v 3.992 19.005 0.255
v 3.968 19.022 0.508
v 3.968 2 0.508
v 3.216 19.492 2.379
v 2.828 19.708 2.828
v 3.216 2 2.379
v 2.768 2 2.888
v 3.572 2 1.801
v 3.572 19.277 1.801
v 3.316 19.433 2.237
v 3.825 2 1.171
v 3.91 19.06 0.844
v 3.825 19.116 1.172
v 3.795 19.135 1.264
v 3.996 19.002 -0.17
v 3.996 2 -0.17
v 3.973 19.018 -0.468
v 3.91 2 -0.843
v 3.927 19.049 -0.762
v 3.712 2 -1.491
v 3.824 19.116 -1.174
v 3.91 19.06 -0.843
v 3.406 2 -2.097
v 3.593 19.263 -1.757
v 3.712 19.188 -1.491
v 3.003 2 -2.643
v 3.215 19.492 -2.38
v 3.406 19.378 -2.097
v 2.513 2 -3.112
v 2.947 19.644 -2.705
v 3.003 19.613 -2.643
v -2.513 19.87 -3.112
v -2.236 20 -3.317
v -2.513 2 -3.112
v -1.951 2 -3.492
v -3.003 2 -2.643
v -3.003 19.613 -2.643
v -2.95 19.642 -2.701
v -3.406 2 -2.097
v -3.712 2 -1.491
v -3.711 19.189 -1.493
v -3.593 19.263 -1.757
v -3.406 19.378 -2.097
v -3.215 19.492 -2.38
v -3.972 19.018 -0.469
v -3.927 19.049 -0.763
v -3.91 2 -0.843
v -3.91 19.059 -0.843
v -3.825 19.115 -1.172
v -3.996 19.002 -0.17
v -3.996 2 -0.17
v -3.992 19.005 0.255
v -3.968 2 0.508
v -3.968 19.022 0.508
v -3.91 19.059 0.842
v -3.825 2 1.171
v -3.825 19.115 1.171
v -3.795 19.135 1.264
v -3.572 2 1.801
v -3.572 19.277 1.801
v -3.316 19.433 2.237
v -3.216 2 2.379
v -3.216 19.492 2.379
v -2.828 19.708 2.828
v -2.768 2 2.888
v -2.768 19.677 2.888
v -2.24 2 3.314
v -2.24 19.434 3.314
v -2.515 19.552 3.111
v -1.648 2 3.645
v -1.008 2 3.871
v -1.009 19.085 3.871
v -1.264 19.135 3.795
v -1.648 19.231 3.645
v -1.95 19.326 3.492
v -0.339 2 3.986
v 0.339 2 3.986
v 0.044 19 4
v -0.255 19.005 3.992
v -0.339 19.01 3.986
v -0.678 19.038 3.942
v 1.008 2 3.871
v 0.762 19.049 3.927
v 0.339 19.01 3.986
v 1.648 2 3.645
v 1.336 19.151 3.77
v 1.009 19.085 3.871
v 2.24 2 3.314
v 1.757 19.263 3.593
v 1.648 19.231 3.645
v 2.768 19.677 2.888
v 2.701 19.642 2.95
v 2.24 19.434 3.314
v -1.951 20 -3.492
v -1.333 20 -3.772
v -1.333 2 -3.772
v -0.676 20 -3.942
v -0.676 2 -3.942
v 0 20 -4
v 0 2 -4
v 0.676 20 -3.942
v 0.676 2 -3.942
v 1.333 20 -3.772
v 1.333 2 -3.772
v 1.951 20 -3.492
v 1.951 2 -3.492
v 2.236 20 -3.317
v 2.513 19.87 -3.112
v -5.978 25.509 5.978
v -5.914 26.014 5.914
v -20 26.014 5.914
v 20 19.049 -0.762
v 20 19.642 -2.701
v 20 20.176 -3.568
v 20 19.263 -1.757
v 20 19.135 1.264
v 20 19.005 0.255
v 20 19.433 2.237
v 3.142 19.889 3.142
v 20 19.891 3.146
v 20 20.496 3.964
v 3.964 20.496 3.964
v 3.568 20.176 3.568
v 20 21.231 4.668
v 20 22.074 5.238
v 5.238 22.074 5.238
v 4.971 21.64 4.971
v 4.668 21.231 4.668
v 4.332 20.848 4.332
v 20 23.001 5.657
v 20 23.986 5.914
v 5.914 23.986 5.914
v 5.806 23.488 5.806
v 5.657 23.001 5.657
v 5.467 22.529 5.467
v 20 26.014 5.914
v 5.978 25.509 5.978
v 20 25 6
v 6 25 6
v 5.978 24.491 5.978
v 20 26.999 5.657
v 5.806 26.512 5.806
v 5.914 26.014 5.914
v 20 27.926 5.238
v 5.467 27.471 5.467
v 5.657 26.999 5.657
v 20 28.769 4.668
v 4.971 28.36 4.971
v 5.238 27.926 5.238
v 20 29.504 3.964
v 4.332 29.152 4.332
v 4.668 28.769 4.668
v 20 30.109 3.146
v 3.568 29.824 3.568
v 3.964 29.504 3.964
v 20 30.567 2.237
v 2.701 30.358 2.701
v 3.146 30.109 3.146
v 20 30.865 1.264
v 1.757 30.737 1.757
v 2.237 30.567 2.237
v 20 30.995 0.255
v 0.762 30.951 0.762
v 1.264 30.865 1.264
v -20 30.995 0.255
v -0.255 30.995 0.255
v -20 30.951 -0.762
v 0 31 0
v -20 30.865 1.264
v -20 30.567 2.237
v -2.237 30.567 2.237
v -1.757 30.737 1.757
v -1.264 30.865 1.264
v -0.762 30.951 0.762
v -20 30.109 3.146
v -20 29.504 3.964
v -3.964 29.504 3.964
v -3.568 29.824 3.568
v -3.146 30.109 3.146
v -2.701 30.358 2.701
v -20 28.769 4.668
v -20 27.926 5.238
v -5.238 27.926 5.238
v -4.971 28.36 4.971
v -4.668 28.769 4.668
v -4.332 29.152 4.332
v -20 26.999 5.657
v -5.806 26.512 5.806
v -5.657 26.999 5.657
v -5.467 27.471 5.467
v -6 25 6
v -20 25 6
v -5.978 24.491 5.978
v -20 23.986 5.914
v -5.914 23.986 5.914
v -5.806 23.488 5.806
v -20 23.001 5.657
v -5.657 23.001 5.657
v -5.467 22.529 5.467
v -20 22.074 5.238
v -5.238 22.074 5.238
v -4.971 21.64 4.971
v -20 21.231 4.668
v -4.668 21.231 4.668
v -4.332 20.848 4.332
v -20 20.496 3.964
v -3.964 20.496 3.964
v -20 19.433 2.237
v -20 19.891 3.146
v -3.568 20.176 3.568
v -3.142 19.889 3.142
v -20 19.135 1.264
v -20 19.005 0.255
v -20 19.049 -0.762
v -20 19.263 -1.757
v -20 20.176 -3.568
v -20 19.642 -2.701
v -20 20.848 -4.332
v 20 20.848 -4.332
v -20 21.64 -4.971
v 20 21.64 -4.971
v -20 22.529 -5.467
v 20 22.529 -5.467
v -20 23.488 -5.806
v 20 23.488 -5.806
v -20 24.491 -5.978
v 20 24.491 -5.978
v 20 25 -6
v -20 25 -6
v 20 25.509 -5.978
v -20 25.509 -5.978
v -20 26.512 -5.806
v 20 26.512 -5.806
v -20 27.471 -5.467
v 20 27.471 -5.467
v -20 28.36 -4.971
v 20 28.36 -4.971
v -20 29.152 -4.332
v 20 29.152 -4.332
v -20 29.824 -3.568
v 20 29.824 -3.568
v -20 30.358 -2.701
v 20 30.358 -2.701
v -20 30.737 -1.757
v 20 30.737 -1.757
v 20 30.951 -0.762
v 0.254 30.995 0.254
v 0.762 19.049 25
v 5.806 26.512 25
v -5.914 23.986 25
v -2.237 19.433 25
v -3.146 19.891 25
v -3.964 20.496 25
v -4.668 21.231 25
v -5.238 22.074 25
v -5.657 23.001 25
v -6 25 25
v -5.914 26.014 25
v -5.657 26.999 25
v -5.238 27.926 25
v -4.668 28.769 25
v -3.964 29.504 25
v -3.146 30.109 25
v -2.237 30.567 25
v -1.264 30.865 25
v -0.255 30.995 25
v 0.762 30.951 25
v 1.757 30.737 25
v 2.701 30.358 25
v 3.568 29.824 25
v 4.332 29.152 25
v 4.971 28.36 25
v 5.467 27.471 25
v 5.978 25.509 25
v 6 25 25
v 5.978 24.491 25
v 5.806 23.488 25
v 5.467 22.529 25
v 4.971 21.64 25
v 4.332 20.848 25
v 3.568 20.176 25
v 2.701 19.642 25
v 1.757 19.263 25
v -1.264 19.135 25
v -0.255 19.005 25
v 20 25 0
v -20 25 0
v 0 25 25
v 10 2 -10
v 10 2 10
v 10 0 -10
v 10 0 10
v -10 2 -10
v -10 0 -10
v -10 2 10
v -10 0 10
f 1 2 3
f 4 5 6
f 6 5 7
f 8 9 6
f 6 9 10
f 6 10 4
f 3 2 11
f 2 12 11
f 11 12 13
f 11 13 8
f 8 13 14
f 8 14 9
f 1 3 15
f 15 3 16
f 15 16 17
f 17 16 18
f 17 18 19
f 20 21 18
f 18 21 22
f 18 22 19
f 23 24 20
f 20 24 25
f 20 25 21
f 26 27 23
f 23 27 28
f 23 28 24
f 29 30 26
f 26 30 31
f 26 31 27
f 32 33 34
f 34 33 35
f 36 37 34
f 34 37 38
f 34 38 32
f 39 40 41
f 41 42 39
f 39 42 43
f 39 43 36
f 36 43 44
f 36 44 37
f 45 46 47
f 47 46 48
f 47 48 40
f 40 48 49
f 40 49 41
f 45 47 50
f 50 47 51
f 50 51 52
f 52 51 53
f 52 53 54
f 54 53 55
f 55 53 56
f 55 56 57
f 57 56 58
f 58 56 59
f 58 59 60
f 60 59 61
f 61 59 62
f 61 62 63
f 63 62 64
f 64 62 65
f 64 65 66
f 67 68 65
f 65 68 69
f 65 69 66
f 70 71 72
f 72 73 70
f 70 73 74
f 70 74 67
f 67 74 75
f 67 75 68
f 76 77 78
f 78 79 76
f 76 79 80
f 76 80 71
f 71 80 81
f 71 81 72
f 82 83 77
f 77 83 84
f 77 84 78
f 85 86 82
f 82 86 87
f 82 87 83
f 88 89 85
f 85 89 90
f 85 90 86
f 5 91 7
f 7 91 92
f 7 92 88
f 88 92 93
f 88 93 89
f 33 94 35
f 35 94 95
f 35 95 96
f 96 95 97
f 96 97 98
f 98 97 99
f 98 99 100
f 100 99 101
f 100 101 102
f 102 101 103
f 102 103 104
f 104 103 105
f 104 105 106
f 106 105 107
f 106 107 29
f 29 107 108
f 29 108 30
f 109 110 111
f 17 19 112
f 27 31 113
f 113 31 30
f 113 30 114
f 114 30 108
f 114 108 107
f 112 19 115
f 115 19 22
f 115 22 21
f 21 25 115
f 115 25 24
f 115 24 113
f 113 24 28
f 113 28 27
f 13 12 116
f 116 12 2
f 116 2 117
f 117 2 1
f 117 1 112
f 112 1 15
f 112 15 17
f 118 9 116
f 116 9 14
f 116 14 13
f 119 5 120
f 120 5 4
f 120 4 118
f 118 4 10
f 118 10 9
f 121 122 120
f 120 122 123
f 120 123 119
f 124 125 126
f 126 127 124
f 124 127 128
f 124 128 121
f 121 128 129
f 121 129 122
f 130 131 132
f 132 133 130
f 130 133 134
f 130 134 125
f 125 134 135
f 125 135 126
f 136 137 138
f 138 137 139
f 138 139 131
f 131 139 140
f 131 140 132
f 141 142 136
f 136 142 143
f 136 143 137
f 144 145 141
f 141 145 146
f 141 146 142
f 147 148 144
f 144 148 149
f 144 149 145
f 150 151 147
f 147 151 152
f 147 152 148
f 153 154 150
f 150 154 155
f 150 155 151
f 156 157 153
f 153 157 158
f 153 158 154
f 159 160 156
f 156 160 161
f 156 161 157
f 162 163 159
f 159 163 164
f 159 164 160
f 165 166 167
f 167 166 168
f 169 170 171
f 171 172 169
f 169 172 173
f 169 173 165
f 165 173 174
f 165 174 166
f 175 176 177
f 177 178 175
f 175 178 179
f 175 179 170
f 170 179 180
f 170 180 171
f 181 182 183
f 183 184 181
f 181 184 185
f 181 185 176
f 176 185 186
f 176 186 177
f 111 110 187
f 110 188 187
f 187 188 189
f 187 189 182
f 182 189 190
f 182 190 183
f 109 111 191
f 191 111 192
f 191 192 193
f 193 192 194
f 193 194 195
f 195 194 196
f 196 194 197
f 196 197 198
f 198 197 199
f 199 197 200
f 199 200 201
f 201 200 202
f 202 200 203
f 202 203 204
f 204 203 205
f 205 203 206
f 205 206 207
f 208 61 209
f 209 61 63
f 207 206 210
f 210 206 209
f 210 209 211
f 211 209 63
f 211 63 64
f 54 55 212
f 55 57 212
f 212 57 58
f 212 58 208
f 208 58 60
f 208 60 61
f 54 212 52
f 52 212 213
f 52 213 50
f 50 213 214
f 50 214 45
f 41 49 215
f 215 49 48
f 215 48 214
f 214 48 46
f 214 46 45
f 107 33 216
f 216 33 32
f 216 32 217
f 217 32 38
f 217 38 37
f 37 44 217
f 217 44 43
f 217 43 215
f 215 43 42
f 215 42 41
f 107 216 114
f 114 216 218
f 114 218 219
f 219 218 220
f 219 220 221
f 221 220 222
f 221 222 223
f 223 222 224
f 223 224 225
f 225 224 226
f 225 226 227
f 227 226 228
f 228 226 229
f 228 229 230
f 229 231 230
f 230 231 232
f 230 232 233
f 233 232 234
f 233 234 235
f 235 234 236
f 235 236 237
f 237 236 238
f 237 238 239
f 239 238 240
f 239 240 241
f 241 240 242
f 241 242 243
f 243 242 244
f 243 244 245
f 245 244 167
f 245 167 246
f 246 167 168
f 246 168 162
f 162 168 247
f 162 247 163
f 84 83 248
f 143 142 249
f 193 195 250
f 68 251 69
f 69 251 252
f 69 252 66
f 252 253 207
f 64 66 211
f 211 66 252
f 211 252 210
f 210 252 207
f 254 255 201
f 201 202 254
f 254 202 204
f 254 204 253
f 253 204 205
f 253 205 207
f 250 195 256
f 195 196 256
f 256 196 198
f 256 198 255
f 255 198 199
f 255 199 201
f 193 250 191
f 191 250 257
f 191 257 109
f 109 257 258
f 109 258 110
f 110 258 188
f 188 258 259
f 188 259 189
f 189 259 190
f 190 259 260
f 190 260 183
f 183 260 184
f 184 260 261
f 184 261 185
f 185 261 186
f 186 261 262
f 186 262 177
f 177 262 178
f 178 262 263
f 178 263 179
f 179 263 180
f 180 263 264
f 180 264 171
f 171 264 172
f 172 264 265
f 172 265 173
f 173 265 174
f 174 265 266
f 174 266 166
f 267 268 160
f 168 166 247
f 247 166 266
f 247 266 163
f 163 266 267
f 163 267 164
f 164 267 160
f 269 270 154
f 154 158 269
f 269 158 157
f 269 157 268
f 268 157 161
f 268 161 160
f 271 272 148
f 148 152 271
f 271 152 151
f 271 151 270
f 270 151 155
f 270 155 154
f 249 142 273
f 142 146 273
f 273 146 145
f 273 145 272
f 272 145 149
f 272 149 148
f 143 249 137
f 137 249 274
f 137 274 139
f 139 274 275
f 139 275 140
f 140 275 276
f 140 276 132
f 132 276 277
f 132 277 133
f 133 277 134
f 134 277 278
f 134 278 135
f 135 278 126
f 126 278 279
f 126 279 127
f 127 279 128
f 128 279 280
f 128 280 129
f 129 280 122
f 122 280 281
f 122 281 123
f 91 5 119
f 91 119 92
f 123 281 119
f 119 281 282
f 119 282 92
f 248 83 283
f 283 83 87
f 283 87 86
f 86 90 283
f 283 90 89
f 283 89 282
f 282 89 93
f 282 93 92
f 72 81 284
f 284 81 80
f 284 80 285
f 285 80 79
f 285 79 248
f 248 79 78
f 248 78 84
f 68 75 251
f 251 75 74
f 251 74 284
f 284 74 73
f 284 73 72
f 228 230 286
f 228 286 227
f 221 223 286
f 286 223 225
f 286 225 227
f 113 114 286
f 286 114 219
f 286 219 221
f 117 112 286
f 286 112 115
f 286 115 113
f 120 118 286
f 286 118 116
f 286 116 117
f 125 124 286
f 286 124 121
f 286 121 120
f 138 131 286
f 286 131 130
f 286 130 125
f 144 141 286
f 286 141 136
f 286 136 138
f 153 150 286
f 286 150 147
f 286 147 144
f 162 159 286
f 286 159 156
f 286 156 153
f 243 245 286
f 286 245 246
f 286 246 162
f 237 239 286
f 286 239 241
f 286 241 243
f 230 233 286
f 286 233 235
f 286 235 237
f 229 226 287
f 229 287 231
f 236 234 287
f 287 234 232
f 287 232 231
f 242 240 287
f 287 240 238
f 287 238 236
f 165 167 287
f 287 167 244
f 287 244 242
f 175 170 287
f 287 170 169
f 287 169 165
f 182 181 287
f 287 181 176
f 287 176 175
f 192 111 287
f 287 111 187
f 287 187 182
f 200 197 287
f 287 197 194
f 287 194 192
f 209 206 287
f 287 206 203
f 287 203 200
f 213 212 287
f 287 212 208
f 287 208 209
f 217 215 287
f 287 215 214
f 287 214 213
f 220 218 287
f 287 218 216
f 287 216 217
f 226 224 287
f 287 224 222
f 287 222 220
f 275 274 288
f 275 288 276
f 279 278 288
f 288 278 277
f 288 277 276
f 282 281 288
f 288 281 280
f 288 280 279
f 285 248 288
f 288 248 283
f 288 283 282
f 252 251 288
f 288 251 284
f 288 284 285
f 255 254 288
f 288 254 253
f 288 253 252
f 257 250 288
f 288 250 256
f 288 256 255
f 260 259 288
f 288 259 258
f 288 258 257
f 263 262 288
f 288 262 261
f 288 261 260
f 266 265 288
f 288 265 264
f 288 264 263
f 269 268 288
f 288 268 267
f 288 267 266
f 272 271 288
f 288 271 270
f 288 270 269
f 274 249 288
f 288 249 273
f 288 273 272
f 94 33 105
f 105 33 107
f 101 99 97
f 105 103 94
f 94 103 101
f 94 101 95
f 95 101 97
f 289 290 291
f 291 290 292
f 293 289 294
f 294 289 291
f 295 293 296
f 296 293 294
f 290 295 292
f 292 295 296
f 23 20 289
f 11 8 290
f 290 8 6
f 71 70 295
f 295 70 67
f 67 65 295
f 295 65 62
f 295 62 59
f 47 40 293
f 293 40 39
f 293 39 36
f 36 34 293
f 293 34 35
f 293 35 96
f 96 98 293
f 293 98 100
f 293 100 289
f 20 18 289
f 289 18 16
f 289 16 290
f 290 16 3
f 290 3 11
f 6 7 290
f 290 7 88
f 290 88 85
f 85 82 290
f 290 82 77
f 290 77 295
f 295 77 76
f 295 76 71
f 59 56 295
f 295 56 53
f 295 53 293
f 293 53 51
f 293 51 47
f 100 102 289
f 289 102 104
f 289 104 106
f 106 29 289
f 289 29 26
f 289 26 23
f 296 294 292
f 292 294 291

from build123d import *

# Parameters (mm, degrees)
RUN_START          = -20
SKETCH1_R          = 6
RUN_DEPTH          = 40
SKETCH2_R          = 6
BRANCH_DEPTH       = 25
SKETCH3_R          = 4
SUPPORT_POST_DEPTH = 20
SKETCH4_W          = 20
SKETCH4_H          = 20
SUPPORT_FOOT_DEPTH = 2


with BuildPart() as part:
    # Sketch1 → Run (new body)
    with BuildSketch(Plane(origin=(0, 0, 0), x_dir=(0, 0, -1), z_dir=(1, 0, 0)).offset(RUN_START)):
        with Locations((0, 25)):
            Circle(SKETCH1_R)
    extrude(amount=RUN_DEPTH)

    # Sketch2 → Branch (add)
    with BuildSketch(Plane.XY):
        with Locations(Location((0, 25, 0), (0, 0, 90))):
            Circle(SKETCH2_R)
    extrude(amount=BRANCH_DEPTH)

    # Sketch3 → Support_Post (add)
    with BuildSketch(Plane(origin=(0, 0, 0), x_dir=(1, 0, 0), z_dir=(0, 1, 0))):
        with Locations(Location((0, 0, 0), (0, 0, 123.987843581))):
            Circle(SKETCH3_R)
    extrude(amount=SUPPORT_POST_DEPTH)

    # Sketch4 → Support_Foot (add)
    with BuildSketch(Plane(origin=(0, 0, 0), x_dir=(1, 0, 0), z_dir=(0, 1, 0))):
        Rectangle(SKETCH4_W, SKETCH4_H)
    extrude(amount=SUPPORT_FOOT_DEPTH)


solid = part.part
